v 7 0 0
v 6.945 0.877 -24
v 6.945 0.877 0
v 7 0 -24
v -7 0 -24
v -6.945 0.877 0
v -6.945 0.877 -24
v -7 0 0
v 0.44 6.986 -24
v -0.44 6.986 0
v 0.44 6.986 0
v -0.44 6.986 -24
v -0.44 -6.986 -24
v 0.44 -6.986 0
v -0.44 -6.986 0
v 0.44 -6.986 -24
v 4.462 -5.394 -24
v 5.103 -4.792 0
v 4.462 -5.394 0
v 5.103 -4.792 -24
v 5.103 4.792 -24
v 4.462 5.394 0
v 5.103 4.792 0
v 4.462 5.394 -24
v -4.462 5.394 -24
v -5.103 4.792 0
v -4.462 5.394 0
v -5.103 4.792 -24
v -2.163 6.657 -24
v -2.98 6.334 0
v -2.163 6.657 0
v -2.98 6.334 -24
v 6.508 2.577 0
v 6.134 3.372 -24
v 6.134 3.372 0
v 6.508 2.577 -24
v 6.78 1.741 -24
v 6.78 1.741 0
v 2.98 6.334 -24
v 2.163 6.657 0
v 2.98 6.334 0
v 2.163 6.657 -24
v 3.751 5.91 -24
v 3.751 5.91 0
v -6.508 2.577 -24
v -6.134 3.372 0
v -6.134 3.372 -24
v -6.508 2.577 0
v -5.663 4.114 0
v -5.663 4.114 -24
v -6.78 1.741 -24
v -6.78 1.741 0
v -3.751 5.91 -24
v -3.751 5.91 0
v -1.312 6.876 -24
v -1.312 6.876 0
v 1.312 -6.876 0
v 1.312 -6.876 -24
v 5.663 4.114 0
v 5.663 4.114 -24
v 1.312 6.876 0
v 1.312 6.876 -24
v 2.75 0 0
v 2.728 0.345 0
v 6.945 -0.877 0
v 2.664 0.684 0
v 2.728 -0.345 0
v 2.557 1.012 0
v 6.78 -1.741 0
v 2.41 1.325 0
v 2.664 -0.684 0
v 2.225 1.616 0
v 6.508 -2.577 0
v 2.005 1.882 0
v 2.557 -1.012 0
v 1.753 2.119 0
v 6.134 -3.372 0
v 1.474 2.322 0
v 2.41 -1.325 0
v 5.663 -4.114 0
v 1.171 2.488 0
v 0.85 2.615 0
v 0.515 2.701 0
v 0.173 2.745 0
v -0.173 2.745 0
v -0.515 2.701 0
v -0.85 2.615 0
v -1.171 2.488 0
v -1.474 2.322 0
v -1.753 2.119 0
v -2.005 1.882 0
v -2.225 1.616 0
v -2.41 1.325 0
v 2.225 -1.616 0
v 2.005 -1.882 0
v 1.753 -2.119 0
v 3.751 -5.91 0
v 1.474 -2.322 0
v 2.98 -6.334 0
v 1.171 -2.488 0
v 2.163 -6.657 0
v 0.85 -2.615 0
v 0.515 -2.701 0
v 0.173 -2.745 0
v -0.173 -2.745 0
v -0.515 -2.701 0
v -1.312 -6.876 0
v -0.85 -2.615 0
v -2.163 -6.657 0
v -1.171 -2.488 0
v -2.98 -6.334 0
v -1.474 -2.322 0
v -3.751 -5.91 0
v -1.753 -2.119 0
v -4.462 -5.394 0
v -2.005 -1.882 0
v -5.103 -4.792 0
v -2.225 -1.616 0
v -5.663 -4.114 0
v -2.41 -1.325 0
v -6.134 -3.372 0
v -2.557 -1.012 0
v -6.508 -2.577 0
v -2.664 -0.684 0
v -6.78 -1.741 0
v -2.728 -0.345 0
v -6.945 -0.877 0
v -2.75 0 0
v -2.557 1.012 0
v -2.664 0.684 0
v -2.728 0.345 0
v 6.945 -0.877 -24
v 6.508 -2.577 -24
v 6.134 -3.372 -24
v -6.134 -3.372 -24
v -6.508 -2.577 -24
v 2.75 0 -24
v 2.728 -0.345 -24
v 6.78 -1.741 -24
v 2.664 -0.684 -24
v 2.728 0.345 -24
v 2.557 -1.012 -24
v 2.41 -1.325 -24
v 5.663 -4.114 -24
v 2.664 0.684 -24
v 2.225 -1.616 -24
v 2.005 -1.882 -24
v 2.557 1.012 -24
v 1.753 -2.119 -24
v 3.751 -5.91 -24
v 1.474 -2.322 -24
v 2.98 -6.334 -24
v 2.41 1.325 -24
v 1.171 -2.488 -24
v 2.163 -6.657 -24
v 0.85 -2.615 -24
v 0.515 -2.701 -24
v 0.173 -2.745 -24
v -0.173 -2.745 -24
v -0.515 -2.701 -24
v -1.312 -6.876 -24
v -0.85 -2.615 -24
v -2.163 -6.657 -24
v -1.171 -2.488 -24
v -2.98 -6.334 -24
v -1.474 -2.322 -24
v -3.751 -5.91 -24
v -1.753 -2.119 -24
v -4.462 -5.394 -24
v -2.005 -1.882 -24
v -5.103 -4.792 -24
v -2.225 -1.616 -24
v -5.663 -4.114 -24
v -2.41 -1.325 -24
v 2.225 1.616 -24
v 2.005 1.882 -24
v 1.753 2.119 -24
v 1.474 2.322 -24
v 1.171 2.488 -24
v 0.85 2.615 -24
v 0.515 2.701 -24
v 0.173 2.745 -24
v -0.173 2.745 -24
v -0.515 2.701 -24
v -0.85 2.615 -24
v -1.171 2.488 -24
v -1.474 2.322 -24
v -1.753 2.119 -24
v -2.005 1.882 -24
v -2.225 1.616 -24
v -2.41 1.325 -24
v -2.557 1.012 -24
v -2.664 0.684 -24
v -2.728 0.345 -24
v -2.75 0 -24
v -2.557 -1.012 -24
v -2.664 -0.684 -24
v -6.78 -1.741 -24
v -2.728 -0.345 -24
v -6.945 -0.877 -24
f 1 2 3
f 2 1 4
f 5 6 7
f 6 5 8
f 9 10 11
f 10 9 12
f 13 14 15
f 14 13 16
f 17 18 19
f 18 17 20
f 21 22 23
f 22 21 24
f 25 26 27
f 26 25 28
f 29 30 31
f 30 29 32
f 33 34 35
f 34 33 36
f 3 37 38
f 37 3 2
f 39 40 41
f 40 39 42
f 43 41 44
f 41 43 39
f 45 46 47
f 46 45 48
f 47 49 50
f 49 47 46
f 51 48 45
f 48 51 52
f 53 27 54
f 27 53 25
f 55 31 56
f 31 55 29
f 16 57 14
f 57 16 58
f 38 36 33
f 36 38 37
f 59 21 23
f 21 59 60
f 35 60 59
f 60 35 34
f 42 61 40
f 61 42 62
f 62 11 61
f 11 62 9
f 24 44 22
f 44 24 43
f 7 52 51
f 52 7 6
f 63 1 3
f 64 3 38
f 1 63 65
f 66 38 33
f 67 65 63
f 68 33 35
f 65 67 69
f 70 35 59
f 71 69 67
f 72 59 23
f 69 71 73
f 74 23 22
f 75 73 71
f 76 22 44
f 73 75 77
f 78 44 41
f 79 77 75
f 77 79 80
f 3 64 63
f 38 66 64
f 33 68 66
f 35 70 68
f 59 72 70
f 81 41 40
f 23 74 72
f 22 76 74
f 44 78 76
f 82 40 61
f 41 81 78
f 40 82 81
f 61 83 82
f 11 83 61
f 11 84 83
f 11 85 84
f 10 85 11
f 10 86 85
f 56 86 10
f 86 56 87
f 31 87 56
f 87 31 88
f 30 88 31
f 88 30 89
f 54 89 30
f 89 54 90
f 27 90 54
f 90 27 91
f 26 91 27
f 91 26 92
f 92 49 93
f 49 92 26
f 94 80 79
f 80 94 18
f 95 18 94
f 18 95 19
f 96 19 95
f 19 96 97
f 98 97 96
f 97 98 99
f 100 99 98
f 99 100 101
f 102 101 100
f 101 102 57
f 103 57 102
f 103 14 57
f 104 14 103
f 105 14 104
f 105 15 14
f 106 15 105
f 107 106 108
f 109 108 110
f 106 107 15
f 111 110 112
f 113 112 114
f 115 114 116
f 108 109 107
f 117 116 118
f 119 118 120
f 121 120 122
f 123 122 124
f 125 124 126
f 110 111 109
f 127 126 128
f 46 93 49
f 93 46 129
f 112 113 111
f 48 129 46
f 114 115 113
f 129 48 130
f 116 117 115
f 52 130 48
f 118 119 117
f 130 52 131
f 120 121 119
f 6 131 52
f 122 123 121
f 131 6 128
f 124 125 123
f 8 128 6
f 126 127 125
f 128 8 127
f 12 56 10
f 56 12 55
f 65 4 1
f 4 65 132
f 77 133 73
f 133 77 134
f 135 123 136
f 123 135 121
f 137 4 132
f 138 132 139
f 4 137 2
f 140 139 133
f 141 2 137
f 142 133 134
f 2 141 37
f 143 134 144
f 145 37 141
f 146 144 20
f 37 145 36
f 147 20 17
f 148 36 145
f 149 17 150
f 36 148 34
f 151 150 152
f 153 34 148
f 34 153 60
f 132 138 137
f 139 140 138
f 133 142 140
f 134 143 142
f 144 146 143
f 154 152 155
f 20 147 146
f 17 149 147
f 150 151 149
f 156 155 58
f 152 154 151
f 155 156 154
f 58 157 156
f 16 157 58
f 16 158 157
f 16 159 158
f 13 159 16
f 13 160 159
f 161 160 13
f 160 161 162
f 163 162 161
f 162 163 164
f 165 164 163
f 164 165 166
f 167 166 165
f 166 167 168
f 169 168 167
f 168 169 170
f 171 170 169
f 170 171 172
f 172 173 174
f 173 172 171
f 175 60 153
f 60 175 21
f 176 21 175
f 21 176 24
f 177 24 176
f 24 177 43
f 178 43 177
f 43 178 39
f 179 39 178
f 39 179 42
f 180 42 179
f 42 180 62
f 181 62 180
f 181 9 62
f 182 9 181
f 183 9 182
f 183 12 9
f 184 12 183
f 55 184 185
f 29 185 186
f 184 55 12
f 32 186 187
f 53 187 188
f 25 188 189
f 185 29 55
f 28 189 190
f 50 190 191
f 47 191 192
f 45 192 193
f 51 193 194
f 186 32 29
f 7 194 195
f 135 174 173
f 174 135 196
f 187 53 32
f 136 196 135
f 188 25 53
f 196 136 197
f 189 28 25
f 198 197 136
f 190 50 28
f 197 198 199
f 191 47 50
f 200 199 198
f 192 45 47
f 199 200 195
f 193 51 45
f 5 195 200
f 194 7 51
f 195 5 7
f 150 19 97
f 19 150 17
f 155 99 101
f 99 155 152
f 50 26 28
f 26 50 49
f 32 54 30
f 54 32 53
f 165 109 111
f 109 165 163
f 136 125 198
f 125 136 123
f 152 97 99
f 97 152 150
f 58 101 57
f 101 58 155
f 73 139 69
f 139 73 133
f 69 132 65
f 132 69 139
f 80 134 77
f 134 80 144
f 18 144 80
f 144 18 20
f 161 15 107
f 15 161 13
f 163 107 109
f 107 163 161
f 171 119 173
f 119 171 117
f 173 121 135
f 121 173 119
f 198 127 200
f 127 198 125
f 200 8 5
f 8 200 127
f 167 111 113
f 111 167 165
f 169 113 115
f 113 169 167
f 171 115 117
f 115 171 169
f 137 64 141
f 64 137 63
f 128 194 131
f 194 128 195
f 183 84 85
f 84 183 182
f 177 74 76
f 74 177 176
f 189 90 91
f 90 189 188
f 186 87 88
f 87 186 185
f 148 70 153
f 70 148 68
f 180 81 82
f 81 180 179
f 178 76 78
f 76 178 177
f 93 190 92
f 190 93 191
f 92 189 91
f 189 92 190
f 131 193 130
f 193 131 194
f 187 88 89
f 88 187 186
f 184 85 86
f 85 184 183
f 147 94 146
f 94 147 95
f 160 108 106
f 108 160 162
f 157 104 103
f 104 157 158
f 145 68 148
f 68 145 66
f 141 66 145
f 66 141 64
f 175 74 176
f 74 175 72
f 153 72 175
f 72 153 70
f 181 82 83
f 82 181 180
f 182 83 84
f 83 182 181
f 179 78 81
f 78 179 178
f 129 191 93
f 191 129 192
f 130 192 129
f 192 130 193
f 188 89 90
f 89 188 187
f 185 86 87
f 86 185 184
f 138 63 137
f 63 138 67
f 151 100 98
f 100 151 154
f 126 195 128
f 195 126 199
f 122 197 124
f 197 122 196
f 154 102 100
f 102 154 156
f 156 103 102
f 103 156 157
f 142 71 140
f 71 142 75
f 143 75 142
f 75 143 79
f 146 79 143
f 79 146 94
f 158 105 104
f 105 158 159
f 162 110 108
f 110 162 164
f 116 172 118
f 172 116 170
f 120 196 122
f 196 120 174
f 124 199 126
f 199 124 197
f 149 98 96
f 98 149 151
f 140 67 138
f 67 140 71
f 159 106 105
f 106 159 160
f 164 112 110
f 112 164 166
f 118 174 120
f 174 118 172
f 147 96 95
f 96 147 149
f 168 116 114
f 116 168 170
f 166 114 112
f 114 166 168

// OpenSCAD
$fn = 50;


difference() {
	union() {
		translate(v = [0, 0, -24.0000000000]) {
			cylinder(h = 24, r = 7.0000000000);
		}
		cylinder(h = 0, r = 13.0000000000);
	}
	union() {
		#translate(v = [0, 0, -24]) {
			cylinder(h = 24, r = 2.7500000000);
		}
	}
}
